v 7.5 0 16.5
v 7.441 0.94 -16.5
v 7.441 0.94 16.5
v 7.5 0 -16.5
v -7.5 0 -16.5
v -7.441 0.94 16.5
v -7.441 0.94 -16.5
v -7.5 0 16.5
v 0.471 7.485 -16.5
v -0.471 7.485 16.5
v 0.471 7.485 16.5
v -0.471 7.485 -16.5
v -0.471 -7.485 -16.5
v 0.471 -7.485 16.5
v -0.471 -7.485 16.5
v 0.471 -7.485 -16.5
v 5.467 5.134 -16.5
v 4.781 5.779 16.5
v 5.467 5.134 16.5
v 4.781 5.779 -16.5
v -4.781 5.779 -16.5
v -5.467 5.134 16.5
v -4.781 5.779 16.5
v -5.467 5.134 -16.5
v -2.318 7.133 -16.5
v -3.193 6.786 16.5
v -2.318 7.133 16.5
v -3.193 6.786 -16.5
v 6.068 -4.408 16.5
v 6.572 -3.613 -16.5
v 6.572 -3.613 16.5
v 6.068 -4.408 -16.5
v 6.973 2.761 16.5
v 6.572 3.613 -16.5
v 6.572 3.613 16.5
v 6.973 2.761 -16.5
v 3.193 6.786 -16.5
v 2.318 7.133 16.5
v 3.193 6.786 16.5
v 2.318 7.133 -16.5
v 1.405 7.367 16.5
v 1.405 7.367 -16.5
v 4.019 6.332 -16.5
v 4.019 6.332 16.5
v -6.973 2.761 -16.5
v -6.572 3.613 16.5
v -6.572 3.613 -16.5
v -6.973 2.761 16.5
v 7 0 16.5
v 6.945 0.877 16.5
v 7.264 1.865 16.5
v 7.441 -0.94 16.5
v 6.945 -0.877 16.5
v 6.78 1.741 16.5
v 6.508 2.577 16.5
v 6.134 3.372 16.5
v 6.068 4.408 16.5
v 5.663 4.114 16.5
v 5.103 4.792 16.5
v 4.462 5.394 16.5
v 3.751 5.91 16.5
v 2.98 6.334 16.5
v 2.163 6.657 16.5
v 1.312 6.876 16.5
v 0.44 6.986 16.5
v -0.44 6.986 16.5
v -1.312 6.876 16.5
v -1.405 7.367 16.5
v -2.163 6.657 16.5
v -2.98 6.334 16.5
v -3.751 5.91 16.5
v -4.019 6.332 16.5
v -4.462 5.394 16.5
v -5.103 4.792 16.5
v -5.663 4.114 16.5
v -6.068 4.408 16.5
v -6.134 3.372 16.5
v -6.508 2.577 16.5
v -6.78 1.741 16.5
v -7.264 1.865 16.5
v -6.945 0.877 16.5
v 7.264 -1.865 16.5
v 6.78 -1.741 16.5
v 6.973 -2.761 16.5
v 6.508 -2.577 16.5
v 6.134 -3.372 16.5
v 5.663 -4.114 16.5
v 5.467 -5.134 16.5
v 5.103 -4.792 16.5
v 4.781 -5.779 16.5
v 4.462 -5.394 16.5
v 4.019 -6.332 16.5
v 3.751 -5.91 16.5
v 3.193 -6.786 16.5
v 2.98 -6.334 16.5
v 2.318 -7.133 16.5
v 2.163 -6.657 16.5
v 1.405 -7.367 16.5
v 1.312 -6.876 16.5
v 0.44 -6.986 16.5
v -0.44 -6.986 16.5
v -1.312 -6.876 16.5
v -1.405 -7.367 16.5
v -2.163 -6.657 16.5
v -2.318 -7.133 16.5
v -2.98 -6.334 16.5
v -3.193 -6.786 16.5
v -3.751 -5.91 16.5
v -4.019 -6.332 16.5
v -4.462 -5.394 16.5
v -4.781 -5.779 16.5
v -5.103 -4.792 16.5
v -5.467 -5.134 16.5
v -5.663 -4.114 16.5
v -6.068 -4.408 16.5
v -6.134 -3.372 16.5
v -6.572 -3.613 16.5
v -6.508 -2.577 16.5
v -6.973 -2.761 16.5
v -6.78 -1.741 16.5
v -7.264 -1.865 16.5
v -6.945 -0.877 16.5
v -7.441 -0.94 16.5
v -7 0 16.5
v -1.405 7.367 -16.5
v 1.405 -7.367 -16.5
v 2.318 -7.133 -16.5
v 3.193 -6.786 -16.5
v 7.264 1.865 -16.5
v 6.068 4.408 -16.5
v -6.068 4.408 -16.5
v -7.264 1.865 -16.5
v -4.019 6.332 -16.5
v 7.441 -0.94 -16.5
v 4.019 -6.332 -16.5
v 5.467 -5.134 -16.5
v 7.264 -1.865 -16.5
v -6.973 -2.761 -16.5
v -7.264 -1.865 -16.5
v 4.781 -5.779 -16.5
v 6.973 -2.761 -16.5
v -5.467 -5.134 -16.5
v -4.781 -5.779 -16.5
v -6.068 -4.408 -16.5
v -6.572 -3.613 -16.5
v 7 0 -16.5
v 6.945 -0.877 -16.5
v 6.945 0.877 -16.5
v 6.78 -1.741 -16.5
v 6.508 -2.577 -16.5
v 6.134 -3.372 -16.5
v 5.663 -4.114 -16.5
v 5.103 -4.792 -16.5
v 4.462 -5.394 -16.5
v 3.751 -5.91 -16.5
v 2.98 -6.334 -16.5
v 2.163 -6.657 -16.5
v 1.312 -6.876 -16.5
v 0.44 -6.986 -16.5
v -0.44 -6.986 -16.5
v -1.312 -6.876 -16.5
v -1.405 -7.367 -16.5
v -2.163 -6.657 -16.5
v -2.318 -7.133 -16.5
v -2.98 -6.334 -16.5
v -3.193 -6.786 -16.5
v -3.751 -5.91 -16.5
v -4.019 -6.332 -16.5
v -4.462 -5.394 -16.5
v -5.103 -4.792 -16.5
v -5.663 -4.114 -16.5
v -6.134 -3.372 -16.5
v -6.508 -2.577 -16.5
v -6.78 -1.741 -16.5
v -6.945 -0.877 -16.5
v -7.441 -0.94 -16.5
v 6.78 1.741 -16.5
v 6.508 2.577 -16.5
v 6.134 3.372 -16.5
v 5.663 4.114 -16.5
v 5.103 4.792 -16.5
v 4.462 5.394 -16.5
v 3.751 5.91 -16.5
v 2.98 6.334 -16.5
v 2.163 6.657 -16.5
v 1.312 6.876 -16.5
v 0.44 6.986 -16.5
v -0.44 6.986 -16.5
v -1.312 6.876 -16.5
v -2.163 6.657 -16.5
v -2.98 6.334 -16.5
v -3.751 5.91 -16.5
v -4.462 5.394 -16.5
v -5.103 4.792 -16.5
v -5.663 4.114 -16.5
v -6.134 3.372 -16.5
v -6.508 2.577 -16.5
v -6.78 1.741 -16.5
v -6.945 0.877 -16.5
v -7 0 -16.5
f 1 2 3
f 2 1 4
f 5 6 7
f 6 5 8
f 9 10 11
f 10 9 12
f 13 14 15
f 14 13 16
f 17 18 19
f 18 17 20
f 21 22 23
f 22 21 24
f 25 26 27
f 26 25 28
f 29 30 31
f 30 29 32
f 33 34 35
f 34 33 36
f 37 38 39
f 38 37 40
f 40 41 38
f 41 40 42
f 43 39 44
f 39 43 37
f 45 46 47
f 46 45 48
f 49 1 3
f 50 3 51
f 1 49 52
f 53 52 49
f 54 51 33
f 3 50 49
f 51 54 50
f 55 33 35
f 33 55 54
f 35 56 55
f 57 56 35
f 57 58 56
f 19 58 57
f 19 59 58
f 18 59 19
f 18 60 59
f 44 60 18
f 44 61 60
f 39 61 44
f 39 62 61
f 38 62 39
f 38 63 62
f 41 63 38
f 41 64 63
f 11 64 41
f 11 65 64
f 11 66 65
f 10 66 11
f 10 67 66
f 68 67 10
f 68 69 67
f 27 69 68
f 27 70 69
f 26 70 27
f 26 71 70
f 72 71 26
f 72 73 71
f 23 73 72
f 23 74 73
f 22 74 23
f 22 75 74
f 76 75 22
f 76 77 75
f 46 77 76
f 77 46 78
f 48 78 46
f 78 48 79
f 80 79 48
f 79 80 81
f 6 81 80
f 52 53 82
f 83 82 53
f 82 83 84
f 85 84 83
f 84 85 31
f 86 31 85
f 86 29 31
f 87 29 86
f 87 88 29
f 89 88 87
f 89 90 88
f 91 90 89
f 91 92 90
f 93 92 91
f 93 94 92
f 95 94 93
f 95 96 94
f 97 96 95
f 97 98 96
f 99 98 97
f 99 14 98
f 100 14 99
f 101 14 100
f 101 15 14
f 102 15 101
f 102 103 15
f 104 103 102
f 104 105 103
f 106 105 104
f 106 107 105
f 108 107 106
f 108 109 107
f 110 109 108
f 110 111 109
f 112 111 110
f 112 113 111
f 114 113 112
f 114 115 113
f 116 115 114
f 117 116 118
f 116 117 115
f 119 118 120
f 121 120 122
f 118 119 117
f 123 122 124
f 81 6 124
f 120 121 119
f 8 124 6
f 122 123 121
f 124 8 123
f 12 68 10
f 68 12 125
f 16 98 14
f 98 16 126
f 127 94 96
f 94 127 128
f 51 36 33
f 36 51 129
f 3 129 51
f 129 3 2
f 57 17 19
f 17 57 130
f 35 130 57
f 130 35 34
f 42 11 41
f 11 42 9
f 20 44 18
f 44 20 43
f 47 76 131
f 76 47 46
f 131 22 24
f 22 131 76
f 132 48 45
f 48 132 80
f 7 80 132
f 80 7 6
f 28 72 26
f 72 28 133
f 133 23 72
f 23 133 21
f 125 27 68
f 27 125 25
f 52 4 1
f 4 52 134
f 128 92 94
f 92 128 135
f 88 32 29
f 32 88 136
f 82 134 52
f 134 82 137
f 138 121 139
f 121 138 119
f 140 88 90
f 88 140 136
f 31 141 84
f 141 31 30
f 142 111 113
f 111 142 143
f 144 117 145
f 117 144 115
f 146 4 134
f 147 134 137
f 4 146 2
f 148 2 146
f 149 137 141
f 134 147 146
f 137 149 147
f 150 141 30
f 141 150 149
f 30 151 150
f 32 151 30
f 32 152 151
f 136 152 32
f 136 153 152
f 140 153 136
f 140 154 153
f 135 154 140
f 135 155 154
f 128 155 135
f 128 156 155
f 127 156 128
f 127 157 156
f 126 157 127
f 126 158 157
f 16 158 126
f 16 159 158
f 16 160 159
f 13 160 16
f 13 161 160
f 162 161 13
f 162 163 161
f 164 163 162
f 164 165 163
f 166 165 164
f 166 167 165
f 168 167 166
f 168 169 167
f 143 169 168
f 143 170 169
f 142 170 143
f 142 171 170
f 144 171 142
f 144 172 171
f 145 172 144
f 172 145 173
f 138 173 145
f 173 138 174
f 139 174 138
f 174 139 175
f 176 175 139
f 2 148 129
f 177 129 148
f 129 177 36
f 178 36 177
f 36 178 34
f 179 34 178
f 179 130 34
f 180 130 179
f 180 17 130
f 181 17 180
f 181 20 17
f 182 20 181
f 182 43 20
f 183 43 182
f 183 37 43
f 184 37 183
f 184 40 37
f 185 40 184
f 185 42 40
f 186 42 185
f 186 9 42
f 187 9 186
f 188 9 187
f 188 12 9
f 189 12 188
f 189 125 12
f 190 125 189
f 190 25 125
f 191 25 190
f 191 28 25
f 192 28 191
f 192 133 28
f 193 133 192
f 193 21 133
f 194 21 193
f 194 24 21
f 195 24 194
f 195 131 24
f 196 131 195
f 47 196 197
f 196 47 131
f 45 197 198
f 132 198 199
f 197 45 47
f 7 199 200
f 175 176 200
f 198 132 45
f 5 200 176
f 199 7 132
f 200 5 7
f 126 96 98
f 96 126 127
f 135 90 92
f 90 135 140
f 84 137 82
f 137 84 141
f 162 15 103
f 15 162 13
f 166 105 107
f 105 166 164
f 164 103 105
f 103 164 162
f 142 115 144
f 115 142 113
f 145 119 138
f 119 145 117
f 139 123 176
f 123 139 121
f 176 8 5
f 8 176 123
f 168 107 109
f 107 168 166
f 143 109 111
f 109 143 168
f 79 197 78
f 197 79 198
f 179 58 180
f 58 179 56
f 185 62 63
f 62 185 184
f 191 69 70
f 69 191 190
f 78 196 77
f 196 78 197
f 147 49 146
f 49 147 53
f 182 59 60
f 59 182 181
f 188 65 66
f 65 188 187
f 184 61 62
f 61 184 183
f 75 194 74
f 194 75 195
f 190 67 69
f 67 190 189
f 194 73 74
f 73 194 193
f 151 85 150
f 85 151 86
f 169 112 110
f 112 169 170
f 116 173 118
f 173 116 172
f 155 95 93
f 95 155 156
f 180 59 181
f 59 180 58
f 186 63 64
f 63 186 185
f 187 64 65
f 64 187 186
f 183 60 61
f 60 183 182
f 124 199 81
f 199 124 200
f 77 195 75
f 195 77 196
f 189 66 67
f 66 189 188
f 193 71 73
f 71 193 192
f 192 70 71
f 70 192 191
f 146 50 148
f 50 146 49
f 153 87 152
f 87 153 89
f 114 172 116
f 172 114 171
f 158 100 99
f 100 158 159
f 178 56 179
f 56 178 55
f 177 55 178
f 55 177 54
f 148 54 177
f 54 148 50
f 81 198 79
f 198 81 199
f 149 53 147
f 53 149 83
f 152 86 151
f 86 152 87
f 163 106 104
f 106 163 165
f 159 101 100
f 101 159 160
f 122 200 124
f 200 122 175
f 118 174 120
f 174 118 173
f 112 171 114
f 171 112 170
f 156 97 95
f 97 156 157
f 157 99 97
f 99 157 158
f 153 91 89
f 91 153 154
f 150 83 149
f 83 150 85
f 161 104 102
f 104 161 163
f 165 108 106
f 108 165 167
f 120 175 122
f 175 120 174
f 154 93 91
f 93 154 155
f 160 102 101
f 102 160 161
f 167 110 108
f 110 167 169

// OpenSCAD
$fn = 50;


difference() {
	union() {
		translate(v = [0, 0, -16.5000000000]) {
			cylinder(h = 33, r = 7.5000000000);
		}
	}
	union() {
		translate(v = [0, 0, -100.0000000000]) {
			cylinder(h = 200, r = 7);
		}
	}
}
